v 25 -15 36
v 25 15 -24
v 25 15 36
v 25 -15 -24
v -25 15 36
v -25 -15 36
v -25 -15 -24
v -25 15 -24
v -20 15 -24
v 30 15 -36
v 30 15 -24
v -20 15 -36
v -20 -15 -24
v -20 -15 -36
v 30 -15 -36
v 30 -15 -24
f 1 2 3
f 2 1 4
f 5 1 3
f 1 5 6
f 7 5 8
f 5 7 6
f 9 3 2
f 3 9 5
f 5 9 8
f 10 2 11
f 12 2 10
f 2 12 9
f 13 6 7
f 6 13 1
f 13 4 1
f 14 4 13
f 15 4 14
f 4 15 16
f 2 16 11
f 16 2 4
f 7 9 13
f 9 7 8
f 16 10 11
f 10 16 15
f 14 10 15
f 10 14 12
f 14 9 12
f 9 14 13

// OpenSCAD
// Define the dimensions of the rectangular block
block_length = 50;  // Length of the block
block_width = 30;   // Width of the block (increased to match original model)
block_height = 12;  // Height of the block (increased to match original model)

// Function to create a rectangular block
module rectangular_block() {
    cube([block_length, block_width, block_height], center = true);
}

// Adjusted stacking and positioning based on differences_list
translate([0, 0, block_height * 2.5]) rectangular_block(); // Layer 1
translate([0, 0, block_height * 1.5]) rectangular_block(); // Layer 2
translate([0, 0, block_height * 0.5]) rectangular_block(); // Layer 3
translate([0, 0, -block_height * 0.5]) rectangular_block(); // Layer 4
translate([0, 0, -block_height * 1.5]) rectangular_block(); // Layer 5
translate([5, 0, -block_height * 2.5]) rectangular_block(); // Layer 6 (repositioned to match original placement)

// Adjust rotation for block alignment
rotate([0, 0, 0]) rectangular_block(); // Ensures blocks are aligned straight
